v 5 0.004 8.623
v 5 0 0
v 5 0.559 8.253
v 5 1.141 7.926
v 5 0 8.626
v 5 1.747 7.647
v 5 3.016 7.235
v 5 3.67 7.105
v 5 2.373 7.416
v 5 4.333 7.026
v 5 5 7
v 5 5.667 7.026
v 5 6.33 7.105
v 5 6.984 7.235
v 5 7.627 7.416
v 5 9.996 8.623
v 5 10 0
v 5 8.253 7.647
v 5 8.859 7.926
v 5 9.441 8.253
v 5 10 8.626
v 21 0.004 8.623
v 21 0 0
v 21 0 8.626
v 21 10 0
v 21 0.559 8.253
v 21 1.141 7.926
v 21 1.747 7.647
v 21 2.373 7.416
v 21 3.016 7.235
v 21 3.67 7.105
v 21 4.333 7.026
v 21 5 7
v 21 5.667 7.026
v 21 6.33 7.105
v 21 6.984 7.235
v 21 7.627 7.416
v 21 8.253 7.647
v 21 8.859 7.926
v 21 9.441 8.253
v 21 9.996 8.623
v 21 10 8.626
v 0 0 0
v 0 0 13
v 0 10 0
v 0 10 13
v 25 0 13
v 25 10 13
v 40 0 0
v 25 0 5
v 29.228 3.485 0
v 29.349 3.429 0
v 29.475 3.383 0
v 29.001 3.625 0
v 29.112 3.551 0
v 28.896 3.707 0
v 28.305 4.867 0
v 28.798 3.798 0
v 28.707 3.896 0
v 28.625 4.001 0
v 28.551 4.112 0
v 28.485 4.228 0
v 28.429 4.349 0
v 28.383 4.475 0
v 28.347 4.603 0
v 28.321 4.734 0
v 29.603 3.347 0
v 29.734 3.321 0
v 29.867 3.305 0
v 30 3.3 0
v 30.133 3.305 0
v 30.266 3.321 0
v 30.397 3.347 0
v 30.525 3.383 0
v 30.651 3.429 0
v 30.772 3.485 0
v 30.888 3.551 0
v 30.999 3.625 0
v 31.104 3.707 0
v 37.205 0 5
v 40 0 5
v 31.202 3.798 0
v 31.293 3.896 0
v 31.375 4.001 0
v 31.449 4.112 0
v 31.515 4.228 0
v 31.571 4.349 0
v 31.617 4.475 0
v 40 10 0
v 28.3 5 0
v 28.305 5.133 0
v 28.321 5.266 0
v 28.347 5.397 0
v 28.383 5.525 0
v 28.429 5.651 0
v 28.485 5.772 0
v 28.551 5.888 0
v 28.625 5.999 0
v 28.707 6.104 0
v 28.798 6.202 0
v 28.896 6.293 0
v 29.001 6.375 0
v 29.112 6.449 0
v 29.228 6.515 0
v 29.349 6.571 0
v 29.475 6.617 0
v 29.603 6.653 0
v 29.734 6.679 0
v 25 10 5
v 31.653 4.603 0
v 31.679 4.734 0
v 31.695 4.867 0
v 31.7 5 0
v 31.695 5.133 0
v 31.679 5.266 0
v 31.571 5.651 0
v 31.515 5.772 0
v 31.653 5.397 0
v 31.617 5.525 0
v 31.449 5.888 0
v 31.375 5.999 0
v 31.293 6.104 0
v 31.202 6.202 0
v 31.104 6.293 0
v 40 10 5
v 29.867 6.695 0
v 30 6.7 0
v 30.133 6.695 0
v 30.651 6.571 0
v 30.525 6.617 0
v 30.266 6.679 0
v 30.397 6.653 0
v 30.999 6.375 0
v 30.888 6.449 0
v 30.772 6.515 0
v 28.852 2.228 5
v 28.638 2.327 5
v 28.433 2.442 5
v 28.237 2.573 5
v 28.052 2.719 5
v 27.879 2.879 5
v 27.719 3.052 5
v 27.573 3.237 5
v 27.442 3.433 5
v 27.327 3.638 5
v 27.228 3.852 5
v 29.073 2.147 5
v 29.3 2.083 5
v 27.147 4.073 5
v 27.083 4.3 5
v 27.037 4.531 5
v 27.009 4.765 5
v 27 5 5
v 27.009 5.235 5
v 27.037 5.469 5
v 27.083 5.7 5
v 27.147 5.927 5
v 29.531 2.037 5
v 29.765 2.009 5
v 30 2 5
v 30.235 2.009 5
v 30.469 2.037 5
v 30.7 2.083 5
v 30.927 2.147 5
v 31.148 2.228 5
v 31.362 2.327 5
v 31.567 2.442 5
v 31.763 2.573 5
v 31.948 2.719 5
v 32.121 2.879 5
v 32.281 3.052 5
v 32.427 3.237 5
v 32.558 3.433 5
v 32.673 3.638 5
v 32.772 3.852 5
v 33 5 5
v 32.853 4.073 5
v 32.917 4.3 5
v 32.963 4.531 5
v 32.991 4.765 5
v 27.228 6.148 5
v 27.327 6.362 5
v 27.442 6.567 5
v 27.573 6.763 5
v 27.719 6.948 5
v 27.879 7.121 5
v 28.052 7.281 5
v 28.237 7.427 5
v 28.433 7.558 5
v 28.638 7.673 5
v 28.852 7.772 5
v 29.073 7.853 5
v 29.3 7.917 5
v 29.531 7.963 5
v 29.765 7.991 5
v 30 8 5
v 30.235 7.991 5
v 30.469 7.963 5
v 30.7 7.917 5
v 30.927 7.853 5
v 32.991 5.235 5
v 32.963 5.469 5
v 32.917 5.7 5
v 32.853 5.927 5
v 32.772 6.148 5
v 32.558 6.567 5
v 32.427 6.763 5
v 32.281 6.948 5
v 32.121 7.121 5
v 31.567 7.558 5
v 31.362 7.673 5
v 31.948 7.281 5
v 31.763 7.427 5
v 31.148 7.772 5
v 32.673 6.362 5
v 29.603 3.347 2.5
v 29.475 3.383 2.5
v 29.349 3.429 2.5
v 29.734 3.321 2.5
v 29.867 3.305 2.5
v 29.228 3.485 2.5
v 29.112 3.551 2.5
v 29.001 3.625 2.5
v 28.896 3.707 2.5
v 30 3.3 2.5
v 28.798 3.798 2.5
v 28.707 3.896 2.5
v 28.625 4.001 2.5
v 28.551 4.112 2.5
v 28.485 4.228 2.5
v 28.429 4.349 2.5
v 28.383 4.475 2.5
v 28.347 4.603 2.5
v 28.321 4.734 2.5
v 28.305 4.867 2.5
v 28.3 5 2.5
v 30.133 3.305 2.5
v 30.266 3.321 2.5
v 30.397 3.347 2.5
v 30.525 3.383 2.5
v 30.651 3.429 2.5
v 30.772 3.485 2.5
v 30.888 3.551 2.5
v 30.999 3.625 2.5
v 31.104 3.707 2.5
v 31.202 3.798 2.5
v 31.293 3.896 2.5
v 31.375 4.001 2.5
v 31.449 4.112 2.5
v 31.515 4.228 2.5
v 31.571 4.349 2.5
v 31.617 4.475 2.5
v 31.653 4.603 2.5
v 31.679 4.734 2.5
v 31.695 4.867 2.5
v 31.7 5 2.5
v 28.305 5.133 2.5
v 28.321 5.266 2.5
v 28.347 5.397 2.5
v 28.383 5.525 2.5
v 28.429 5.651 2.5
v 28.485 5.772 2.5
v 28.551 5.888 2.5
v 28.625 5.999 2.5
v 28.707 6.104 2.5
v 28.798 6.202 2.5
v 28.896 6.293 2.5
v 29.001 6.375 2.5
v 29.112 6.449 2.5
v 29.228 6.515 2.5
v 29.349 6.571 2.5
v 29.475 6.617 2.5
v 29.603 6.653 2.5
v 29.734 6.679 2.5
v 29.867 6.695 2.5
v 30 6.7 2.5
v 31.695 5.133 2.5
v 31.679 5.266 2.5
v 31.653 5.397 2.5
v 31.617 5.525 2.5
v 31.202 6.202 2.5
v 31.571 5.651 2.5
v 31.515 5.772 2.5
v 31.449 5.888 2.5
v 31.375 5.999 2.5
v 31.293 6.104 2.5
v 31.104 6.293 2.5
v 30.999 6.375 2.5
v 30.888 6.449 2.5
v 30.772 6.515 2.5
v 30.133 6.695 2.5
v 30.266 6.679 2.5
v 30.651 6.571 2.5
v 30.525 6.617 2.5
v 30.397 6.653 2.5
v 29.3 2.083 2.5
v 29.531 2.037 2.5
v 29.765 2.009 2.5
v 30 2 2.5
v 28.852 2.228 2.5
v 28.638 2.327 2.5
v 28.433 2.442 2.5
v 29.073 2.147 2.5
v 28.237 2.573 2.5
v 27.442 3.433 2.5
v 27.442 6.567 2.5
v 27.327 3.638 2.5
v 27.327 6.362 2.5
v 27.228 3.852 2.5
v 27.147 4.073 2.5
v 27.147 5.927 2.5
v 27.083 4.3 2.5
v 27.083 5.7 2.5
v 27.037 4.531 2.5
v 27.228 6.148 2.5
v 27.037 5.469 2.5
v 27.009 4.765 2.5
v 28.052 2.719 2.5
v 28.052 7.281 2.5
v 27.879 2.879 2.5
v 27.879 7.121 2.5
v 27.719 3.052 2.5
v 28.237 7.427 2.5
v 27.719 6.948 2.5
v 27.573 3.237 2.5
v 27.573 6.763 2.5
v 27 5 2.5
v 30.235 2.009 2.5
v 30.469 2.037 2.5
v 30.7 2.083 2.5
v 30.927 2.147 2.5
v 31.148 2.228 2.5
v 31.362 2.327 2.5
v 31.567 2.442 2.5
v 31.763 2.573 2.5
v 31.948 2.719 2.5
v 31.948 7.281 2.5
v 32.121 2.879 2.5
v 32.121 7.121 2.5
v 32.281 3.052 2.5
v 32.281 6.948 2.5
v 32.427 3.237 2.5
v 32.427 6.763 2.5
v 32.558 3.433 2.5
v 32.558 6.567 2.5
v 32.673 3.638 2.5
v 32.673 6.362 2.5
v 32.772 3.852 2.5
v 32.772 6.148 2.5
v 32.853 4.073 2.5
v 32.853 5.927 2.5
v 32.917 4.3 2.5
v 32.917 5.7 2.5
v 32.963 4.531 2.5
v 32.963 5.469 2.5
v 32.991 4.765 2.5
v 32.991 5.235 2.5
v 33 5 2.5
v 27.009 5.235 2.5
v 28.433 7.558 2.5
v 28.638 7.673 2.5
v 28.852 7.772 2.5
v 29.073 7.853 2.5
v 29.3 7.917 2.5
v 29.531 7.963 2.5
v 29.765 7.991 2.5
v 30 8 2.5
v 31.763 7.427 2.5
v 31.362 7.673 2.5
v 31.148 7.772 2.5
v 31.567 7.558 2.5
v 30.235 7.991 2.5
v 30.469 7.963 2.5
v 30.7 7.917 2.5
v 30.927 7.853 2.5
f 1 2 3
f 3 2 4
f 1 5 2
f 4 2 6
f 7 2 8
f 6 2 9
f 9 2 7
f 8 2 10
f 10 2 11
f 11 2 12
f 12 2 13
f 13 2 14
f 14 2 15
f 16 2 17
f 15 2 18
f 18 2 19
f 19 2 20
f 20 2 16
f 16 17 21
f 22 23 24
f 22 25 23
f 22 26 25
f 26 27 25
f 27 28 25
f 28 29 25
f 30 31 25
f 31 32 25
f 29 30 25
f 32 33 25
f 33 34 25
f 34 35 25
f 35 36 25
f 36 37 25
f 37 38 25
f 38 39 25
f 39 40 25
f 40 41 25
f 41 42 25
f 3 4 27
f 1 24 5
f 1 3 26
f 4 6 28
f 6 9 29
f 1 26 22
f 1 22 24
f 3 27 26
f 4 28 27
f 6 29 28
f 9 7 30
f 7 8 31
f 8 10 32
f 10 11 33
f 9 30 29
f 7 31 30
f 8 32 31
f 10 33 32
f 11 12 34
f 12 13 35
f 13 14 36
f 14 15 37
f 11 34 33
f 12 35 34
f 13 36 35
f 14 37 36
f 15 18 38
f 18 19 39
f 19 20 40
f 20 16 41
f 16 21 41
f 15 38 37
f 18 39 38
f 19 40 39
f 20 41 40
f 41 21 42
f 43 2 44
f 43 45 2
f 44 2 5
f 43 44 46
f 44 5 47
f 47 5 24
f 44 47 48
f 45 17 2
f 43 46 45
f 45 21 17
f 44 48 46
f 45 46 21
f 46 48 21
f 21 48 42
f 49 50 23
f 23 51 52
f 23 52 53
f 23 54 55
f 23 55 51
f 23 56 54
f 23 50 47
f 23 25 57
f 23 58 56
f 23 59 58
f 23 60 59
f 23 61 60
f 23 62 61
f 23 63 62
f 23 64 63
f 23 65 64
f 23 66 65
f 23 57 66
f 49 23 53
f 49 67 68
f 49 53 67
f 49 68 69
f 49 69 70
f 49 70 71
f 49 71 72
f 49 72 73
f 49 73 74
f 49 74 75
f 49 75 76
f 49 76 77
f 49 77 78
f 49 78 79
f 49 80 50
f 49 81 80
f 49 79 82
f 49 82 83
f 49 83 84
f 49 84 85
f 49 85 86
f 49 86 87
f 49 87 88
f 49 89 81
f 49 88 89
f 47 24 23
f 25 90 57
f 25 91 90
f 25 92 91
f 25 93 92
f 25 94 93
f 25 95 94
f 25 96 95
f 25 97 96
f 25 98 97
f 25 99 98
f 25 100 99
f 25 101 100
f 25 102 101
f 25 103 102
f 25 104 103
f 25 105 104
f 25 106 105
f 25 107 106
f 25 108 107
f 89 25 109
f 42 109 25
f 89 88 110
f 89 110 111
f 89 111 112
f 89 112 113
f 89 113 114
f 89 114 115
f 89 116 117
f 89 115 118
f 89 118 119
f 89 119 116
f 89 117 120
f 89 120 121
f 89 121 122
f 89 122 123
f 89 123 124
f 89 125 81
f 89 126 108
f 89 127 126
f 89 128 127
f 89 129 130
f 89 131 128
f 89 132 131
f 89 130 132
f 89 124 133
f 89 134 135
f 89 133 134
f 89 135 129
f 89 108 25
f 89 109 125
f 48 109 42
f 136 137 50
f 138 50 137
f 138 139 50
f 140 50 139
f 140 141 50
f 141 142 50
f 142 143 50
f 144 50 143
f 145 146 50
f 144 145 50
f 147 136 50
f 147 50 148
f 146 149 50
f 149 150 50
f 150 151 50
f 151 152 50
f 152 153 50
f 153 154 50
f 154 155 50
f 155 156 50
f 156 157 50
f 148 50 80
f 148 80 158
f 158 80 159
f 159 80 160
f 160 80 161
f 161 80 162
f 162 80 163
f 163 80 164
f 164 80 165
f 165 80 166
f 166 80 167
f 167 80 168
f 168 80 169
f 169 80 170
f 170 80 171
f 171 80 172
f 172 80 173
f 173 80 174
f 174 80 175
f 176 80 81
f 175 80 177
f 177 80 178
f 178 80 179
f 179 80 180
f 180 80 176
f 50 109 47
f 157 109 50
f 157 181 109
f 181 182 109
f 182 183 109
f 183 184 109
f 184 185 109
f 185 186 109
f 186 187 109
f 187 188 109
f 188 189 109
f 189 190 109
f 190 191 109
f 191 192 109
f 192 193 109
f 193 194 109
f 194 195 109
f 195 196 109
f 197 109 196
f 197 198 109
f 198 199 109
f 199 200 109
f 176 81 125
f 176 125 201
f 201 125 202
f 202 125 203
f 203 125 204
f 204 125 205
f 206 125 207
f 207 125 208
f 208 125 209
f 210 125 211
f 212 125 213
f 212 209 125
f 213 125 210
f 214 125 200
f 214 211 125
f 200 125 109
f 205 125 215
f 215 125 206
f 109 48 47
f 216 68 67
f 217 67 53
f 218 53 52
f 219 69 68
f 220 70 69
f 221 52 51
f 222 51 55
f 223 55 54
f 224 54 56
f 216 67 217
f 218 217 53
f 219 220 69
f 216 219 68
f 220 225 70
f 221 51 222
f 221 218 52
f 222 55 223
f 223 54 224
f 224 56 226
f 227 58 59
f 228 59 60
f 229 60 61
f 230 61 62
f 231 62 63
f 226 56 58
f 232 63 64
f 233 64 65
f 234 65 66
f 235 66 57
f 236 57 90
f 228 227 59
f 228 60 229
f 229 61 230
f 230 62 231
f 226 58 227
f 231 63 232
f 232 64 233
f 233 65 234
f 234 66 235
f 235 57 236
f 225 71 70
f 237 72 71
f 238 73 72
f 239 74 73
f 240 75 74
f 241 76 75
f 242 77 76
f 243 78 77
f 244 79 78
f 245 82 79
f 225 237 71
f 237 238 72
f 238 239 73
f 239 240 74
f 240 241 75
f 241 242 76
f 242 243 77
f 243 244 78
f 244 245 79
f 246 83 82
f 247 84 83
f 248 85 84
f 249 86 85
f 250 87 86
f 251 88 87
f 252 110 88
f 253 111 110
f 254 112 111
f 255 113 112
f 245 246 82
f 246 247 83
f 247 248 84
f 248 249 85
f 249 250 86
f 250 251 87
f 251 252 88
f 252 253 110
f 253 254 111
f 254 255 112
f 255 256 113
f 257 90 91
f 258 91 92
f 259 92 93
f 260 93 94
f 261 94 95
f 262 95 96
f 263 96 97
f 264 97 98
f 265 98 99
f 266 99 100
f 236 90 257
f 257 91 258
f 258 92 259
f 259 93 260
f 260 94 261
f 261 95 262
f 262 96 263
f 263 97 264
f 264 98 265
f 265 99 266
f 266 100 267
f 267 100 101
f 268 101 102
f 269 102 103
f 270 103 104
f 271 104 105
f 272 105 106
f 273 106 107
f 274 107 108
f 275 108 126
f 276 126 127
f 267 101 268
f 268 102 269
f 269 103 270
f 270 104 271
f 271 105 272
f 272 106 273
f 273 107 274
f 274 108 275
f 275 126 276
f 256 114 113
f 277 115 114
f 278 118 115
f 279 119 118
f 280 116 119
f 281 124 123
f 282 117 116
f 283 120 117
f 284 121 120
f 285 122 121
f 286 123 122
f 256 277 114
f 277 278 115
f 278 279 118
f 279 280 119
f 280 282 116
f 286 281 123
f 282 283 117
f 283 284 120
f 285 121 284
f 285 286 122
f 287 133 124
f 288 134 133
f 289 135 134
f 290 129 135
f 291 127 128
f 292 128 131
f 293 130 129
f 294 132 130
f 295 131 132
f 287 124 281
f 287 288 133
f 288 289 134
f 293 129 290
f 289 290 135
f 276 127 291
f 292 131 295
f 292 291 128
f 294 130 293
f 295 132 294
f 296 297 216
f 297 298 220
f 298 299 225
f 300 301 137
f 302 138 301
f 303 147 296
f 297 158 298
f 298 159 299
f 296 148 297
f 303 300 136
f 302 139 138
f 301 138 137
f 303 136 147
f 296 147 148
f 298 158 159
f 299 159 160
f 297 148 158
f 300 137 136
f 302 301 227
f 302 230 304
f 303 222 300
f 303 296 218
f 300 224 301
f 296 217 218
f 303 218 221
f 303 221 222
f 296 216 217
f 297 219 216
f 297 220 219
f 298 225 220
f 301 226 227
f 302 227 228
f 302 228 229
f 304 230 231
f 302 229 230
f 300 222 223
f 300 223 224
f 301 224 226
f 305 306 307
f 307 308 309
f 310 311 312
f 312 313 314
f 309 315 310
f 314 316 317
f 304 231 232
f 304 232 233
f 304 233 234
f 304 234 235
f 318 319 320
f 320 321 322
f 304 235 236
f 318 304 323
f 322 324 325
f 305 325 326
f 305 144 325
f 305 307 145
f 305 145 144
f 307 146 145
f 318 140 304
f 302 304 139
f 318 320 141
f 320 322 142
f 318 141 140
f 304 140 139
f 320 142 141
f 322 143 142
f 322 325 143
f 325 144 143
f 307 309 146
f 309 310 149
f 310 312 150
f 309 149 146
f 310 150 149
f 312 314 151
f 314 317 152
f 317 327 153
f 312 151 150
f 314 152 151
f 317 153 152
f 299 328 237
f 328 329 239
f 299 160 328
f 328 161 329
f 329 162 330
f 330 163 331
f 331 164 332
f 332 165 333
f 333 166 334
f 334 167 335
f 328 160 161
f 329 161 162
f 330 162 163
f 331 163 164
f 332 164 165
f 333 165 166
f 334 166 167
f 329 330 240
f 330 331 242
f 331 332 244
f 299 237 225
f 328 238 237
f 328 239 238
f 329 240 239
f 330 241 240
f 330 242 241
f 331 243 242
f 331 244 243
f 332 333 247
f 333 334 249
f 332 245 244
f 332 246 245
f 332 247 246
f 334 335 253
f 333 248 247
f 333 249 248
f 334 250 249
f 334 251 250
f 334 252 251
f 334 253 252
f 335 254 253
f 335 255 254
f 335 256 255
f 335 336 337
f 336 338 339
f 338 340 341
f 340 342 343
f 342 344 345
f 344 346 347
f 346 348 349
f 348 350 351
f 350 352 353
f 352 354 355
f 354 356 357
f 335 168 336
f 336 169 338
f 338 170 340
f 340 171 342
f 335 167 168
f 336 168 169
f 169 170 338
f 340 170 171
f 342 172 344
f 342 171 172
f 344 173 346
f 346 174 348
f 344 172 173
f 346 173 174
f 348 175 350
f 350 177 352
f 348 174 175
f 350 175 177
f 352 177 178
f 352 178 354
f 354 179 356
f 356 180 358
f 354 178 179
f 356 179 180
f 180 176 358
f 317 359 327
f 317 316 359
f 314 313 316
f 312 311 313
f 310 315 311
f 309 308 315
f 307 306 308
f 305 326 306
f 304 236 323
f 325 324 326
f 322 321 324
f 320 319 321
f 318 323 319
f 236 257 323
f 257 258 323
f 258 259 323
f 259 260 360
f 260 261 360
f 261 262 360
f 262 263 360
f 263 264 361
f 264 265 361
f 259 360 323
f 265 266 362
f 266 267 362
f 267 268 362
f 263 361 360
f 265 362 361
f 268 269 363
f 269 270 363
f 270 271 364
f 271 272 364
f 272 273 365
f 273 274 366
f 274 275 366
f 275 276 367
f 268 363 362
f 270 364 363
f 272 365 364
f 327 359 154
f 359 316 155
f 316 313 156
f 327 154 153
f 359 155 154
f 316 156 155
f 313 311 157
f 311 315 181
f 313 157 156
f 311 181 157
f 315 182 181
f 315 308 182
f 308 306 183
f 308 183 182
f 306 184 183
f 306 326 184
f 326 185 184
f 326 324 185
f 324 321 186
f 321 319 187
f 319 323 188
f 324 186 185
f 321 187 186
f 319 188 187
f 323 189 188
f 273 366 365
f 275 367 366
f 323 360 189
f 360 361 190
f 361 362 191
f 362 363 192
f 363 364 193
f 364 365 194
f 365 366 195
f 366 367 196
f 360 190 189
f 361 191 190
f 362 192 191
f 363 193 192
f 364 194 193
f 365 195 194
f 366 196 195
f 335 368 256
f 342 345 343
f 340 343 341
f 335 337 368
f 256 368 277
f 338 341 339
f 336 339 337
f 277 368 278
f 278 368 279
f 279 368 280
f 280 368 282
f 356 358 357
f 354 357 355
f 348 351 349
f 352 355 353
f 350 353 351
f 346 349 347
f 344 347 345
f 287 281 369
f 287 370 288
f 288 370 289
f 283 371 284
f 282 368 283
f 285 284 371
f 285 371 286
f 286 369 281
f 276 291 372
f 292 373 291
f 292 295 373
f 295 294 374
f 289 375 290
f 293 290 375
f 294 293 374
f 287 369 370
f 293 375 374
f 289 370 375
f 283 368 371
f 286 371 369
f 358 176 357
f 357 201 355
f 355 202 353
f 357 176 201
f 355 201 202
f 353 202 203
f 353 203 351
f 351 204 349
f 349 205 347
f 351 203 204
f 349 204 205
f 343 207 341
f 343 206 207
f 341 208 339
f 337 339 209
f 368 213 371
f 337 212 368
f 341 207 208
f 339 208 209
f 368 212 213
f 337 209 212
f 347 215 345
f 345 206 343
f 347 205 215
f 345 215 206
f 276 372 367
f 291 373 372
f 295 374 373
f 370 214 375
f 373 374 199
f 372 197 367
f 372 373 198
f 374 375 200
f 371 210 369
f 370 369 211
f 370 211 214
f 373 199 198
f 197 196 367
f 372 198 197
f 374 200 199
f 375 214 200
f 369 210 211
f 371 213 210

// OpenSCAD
/* CT Holder - Version 0.12
   Method: Subtractive with nested difference.
   Modification: Bolt center 10mm from end, round head pocket.
*/

// --- Parameetrid ---
ct_od = 31;
ct_id = 17;
ct_h = 16;           // CT paksus (laius)
wall_t = 5;          // Alumise lapi paksus
bolt_d = 3.4;        // M3 poldi ava
bolt_head_d = 6.0;   // M3 ümarpea läbimõõt
$fn = 80;

block_l = 40;
block_h = 13;
block_w = 10;        // Hoidiku laius (läheb läbi CT ava)

// Arvutatud väärtused
ct_r_in = ct_id / 2; // 8.5mm
cutout_h = 8;        // Sisselõike kõrgus

module ct_holder() {
    difference() {
        // 1. Algne põhiplokk
        cube([block_l, block_w, block_h]);

        // 2. Poldi lapi tekitamine (parem ülemine lõige)
        translate([block_l - 15, -1, wall_t]) // Pikendasime sisselõiget, et polt mahuks
            cube([16, block_w + 2, block_h + 1]);

        // 3 ja 6 kombineerituna: CT pesa + kumeruse säilitamine
        translate([5, -1, 0]) {
            difference() {
                // Kandiline sisselõige
                cube([ct_h, block_w + 2, cutout_h + 1]);
                
                // KURV: CT siseava raadius
                translate([0, (block_w + 2) / 2, ct_od/2])
                    rotate([0, 90, 0])
                        cylinder(h = ct_h, r = ct_r_in);
            }
        }
            
        // 4. Poldi ava (Kese 10mm otsast)
        translate([block_l - 10, block_w / 2, -1])
            cylinder(h = wall_t + 2, d = bolt_d);
            
        // 5. Poldipea süvend (Ümarpea jaoks sirge silinder)
        translate([block_l - 10, block_w / 2, wall_t - 2.5])
            cylinder(h = 3, d = bolt_head_d);
    }
}

ct_holder();
